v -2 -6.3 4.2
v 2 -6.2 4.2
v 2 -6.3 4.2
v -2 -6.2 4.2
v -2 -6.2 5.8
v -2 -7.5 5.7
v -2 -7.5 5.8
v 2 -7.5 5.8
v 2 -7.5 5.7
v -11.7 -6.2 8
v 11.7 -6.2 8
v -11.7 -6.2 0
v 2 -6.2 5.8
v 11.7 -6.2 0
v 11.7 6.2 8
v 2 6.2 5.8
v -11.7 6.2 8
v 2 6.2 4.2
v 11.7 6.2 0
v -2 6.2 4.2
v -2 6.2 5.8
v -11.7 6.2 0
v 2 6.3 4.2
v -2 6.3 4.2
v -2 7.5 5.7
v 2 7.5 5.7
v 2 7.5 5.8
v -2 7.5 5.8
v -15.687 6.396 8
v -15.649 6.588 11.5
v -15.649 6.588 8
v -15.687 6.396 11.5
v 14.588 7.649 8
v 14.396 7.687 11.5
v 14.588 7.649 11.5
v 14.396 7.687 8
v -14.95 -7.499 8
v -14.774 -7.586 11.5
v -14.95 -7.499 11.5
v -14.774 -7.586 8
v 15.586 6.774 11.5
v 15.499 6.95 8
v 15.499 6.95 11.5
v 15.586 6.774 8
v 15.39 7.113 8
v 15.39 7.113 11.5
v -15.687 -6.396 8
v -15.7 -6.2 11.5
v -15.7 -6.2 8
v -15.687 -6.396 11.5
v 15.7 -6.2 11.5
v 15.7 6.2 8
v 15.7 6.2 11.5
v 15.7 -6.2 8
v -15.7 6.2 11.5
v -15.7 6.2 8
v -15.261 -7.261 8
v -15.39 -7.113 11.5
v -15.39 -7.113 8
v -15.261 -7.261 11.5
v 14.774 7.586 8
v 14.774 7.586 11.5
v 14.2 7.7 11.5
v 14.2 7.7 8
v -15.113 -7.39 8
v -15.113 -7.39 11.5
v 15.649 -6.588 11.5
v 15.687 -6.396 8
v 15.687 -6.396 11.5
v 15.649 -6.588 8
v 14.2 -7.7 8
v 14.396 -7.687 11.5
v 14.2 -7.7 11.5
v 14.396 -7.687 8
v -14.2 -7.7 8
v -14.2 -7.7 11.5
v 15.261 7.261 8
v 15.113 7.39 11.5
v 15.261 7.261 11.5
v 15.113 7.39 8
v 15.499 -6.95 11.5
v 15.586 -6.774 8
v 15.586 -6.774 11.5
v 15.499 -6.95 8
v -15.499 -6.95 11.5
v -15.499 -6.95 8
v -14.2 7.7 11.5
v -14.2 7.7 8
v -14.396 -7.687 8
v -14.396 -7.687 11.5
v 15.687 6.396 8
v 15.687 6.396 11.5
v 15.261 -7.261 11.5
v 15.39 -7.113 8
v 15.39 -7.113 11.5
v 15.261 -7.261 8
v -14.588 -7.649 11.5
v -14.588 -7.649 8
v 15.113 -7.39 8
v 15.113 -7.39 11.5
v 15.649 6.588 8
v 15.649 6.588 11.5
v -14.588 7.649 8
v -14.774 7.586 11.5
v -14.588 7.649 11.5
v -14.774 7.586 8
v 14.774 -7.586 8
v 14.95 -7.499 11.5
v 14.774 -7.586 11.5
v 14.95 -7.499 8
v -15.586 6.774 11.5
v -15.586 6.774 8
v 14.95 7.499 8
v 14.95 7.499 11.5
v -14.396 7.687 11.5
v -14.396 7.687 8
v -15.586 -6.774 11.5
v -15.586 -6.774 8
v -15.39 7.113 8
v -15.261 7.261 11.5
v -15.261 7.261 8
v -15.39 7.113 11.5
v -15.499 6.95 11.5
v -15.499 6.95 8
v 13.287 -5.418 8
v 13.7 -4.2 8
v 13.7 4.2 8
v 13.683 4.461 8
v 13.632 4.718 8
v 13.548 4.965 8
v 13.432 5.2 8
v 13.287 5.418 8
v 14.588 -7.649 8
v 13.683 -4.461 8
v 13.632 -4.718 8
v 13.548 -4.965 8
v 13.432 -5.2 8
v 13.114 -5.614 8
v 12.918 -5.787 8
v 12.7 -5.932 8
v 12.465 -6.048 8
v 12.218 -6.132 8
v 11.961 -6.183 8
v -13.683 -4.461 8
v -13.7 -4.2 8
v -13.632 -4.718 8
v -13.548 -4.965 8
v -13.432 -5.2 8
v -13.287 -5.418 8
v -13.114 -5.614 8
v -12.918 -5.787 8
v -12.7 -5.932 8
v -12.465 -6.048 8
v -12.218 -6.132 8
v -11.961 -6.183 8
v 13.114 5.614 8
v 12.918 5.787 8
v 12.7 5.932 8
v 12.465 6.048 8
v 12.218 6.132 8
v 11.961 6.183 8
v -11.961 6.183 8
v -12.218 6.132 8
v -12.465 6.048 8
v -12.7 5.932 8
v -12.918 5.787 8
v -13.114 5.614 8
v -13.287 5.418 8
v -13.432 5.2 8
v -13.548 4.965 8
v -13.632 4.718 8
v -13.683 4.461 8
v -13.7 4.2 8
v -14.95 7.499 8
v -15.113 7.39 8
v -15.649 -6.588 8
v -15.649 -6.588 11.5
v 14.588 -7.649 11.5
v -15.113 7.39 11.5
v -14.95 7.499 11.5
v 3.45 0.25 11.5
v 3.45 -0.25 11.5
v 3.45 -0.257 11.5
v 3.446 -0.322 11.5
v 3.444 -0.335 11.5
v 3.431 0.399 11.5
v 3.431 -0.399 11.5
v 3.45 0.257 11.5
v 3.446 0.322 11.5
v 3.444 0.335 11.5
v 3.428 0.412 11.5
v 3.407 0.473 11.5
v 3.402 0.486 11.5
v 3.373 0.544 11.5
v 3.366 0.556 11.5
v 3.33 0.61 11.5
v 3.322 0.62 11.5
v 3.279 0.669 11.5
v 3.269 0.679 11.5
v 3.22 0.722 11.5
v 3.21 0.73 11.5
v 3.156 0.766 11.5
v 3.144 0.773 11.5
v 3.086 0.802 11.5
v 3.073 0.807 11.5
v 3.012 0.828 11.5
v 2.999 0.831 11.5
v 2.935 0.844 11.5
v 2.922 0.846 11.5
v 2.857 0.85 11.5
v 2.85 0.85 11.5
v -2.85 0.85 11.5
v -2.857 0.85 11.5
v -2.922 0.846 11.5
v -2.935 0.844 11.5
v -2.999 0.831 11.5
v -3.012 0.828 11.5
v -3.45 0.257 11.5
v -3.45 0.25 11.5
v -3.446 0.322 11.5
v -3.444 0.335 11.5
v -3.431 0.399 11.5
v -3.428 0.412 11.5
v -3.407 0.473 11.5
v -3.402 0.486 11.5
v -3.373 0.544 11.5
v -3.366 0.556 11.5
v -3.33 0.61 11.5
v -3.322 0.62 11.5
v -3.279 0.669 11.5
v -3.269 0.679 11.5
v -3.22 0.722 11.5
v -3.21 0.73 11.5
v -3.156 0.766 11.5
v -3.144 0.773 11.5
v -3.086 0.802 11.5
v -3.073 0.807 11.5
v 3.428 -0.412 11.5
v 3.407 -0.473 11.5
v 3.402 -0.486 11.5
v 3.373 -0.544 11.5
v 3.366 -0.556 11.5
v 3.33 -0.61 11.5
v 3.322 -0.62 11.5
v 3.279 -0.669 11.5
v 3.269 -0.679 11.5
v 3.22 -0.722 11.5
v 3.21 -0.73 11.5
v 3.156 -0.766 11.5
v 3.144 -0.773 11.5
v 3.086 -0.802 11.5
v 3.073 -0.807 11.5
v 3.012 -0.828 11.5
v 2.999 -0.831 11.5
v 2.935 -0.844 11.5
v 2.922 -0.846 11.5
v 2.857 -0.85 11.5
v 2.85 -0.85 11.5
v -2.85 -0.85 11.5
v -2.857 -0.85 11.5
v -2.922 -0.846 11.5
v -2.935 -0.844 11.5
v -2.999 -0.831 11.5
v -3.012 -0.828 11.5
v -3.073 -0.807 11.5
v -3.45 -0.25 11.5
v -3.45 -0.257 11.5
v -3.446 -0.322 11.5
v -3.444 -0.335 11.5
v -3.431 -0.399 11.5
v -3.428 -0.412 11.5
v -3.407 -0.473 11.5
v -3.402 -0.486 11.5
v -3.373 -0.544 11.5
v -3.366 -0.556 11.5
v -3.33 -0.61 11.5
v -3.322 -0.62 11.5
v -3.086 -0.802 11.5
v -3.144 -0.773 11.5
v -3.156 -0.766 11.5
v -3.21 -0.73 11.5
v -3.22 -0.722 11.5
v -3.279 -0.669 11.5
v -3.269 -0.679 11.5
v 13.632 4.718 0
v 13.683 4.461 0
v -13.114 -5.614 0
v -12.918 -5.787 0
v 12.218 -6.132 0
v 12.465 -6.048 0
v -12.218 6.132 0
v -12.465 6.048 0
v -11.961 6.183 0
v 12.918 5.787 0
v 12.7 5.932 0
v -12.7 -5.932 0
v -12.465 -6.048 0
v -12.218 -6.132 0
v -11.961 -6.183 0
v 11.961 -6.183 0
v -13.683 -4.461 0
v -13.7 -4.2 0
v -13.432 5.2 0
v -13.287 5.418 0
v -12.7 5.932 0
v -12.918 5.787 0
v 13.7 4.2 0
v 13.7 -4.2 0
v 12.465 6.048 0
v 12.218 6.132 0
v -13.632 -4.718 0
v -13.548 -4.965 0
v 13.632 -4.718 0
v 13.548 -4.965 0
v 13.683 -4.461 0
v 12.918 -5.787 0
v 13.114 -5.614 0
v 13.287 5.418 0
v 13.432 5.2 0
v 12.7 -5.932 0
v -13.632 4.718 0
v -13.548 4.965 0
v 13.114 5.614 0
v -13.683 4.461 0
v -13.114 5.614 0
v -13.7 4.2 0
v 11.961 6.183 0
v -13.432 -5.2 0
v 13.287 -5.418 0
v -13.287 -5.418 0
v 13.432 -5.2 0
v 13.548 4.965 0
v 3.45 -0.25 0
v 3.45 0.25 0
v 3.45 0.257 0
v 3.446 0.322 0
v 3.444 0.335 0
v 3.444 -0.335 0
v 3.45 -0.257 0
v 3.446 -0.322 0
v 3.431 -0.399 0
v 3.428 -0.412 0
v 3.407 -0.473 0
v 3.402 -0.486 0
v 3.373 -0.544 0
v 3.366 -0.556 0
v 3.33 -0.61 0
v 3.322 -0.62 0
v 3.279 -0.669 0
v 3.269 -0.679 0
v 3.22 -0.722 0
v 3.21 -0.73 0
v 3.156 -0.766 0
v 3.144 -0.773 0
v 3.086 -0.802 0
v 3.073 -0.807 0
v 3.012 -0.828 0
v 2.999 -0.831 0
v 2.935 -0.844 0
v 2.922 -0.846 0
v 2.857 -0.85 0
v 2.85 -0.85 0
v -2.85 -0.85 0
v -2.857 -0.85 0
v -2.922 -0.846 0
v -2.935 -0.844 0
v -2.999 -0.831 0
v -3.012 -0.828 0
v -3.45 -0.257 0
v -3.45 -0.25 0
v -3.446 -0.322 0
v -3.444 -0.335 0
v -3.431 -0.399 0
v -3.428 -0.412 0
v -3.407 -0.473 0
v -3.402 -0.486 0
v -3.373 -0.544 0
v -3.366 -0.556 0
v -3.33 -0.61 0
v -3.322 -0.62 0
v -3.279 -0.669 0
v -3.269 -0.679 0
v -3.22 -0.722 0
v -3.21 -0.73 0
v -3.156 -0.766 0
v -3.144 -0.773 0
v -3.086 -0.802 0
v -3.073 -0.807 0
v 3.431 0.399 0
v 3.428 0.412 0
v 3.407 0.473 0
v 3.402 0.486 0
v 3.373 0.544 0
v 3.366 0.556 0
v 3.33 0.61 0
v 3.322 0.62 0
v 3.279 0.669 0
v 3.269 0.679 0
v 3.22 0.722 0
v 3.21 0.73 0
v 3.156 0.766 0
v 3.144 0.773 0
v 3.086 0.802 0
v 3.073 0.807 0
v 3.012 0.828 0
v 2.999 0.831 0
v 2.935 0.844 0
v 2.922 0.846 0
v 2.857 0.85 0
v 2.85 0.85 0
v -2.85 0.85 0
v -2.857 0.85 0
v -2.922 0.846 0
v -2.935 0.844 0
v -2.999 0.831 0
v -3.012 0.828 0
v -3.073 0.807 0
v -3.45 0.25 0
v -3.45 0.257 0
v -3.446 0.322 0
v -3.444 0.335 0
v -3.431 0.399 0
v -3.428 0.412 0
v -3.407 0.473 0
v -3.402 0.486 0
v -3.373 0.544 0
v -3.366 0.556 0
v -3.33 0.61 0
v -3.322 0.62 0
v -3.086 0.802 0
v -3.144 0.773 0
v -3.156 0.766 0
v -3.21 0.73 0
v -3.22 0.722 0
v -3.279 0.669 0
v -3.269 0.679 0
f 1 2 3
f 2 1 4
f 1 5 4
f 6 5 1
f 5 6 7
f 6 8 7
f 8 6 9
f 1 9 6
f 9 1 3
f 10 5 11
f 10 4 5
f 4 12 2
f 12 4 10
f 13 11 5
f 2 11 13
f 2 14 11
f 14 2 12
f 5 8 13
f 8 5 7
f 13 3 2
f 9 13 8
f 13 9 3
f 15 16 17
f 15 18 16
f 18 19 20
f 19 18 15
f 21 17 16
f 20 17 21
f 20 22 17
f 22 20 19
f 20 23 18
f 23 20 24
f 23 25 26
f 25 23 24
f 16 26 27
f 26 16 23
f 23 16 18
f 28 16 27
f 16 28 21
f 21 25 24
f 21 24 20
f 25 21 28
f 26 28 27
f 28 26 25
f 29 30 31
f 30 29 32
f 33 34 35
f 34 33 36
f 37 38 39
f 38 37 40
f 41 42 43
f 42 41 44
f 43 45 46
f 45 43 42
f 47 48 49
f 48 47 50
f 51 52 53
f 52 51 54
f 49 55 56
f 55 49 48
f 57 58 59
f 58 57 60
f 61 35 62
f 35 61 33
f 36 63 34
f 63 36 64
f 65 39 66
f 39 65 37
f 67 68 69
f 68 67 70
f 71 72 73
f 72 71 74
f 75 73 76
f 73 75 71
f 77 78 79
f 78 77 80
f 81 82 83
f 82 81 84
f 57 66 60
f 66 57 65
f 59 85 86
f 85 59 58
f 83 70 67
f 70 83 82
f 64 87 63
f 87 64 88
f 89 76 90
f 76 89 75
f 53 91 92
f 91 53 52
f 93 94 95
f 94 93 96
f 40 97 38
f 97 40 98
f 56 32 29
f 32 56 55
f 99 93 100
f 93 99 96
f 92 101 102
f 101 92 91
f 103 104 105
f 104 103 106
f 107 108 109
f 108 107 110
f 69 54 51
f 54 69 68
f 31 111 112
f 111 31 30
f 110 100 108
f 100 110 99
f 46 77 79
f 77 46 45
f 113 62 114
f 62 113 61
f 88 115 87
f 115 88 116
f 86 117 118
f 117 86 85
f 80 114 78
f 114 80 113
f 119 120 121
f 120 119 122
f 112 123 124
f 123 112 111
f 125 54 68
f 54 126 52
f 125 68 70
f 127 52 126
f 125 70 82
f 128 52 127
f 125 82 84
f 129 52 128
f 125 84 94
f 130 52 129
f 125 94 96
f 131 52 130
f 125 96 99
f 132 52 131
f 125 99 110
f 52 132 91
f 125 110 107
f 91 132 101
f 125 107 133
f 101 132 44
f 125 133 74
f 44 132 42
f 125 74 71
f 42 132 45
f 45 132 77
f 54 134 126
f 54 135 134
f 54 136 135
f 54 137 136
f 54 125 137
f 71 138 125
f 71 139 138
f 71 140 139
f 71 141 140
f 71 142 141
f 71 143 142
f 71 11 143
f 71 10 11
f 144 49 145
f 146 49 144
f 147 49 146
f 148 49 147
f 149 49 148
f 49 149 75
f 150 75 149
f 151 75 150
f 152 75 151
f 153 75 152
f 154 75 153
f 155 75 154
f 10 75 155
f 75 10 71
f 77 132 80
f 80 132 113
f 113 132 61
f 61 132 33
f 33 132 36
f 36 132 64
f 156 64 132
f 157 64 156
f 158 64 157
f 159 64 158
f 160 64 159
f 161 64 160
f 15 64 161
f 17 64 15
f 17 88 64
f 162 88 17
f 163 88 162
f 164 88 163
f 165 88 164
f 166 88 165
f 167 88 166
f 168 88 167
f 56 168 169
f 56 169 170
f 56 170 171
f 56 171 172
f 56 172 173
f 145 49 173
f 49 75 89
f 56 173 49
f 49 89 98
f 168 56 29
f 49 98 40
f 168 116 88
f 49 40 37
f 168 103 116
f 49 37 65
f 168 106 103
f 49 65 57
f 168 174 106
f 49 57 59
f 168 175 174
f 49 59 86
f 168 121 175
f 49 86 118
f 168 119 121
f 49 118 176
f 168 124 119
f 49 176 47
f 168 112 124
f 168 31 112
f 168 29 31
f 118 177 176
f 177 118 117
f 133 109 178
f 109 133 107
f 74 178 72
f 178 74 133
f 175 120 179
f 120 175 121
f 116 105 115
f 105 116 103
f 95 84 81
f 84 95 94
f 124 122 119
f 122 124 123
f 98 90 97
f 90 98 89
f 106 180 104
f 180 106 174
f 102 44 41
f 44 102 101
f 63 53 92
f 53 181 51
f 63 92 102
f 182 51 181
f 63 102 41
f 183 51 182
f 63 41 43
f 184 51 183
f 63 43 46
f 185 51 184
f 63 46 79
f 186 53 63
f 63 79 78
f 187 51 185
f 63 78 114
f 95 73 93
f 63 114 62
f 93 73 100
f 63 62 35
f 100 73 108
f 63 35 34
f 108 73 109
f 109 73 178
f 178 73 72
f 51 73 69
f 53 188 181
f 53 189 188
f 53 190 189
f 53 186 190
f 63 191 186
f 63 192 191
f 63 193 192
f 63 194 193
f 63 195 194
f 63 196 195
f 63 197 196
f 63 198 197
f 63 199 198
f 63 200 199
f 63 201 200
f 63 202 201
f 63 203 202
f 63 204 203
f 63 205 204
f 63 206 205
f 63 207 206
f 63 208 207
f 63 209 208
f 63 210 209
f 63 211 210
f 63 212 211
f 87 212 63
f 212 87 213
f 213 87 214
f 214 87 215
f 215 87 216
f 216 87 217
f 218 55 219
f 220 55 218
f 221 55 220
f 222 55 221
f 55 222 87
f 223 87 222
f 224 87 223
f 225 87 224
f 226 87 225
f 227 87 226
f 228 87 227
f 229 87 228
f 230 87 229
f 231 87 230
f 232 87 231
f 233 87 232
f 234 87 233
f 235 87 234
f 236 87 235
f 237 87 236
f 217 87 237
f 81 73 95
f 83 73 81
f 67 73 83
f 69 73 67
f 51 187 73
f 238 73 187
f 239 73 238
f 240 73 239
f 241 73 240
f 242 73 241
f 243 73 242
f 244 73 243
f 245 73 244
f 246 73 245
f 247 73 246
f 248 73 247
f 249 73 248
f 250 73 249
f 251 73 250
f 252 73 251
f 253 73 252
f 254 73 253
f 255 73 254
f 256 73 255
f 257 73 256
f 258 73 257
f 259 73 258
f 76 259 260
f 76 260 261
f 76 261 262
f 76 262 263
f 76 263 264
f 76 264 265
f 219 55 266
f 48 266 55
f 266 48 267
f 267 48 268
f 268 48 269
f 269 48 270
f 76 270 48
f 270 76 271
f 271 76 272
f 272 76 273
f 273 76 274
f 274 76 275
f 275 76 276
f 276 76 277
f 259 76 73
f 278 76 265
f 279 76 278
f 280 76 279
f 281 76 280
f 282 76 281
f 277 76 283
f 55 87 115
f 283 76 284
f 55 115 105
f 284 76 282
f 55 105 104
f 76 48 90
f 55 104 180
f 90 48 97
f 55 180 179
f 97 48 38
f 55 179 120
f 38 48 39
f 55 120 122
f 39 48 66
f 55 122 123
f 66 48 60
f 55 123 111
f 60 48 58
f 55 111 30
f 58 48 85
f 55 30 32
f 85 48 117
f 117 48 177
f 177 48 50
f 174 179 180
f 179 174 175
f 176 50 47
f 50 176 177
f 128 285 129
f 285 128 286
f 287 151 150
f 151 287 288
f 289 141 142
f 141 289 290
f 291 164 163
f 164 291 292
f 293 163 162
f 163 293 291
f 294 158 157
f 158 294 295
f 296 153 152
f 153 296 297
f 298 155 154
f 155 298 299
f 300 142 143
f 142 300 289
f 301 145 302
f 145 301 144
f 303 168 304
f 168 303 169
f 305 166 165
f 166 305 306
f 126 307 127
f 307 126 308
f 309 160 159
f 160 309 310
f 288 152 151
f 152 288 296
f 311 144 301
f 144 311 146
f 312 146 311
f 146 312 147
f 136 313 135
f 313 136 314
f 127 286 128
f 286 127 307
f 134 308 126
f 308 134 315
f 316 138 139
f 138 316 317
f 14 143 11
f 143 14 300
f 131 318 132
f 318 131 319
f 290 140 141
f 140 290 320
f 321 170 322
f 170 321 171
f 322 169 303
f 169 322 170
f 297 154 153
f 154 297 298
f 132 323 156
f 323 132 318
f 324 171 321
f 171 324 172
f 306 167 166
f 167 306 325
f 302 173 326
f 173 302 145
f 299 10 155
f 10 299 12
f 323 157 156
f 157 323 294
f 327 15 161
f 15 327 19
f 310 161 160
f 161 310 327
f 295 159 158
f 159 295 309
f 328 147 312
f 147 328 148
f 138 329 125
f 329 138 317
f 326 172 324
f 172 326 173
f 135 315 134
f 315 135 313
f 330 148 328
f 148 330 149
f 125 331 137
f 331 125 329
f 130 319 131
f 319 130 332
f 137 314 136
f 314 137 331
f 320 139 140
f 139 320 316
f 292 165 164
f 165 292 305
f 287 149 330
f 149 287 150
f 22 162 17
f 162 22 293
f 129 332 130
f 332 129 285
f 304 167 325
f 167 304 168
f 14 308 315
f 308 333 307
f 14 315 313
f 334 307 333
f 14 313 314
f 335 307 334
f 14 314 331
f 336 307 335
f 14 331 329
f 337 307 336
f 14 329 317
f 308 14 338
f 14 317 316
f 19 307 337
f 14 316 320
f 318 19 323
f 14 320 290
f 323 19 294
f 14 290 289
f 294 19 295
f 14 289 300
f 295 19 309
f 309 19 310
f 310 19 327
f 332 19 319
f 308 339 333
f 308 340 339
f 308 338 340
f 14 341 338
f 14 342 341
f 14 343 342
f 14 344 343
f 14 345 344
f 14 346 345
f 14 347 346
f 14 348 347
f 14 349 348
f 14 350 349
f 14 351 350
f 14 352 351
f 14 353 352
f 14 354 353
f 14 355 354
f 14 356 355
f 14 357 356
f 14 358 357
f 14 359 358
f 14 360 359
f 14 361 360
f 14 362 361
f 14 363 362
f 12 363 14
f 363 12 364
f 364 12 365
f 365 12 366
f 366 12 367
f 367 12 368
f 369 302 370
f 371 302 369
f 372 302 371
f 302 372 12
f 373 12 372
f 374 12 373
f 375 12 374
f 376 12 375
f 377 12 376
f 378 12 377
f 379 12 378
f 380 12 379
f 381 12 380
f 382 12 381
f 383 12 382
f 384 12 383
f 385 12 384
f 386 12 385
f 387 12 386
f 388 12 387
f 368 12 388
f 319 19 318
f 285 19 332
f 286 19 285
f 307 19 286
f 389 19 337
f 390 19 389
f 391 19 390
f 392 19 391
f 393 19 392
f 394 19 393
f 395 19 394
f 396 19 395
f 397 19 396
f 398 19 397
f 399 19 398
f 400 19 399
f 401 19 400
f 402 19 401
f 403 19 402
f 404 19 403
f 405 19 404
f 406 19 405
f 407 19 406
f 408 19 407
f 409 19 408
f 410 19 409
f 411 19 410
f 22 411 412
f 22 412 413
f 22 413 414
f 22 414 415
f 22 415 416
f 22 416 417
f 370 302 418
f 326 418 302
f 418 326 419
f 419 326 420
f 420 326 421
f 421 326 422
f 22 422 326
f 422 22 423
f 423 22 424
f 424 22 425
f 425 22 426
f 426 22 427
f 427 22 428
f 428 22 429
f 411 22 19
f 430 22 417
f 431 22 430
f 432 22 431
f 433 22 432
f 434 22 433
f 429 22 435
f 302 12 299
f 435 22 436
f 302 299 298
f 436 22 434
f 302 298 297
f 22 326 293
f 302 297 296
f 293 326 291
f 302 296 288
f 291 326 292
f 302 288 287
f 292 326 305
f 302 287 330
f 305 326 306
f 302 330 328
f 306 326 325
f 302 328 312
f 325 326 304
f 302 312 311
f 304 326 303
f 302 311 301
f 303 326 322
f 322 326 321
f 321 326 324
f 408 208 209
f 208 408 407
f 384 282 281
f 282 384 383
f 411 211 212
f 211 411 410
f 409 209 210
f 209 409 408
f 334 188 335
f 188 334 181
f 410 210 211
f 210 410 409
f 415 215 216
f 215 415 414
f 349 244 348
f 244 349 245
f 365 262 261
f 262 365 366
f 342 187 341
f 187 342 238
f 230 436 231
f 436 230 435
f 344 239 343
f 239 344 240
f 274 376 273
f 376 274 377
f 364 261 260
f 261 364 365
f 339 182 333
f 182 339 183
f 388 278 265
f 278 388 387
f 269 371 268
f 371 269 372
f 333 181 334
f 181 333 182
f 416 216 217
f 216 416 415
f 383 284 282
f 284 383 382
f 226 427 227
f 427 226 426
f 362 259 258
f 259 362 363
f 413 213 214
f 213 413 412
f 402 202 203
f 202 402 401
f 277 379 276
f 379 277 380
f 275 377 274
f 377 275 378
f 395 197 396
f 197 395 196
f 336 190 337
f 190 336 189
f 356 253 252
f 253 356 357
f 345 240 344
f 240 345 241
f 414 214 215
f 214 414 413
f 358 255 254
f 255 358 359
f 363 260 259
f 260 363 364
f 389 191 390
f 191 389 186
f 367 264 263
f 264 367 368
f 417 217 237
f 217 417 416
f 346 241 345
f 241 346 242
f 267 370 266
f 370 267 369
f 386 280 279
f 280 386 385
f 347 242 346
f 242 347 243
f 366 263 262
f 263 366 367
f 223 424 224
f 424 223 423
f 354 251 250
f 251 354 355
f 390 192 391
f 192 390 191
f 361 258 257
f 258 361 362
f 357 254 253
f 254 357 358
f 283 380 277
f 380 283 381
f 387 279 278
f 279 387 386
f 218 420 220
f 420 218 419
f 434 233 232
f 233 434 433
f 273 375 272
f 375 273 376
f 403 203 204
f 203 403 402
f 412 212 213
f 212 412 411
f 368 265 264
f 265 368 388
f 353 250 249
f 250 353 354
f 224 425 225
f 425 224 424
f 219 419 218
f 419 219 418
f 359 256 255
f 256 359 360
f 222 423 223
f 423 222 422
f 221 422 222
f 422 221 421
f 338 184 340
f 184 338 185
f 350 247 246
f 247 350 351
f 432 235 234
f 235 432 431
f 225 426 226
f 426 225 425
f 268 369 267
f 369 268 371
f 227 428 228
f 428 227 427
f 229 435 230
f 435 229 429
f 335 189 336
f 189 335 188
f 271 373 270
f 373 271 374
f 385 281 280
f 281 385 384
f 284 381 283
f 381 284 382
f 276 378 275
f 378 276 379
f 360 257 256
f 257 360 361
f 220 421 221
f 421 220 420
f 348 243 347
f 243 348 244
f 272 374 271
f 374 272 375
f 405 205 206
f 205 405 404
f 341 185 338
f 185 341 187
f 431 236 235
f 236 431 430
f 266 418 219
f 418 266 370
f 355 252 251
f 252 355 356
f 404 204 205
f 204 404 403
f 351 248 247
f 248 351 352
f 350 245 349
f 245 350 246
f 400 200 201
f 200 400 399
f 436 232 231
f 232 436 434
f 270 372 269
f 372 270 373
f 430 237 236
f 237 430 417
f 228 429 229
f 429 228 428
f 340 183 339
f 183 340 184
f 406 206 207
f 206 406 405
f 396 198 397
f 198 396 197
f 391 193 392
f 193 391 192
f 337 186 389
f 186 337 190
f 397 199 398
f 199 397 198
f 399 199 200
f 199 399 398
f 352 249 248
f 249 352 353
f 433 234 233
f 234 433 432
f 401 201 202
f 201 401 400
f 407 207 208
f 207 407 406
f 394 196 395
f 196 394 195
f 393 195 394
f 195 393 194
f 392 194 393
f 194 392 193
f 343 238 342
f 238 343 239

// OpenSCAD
// file: insert_base.scad
// ============================================
// MODULAR CABLE ORGANIZER - BASE INSERT MODULE
// ============================================
// This is the parent module for all insert types
// Include this file and call insert_with_port() with a port shape
// ============================================

include <parameters.scad>

// === BASE INSERT WITH CUSTOM BODY DEPTH ===
module insert_blank_custom(body_depth) {
    union() {
        // Base plate (sits in frame slot)
        rounded_box_rect(insert_width, insert_height, insert_base_depth, 1.5);
        
        // Body (protrudes out front) - custom depth
        translate([0, 0, insert_base_depth])
            rounded_box_rect(insert_body_width, insert_body_height, body_depth, 2);
        
        // Snap tabs on all 4 sides
        snap_tabs_all();
    }
}

// === BASE INSERT (default depth - for backwards compatibility) ===
module insert_blank() {
    insert_blank_custom(insert_body_depth);
}

// === INSERT WITH THROUGH-HOLE PORT (custom depth) ===
// Pass body_depth and a 2D shape as children
module insert_with_port_custom(body_depth) {
    total_depth = insert_base_depth + body_depth;
    difference() {
        insert_blank_custom(body_depth);
        
        // Cut port hole ALL THE WAY through (tube shape)
        translate([0, 0, -0.1])
            linear_extrude(total_depth + 0.2)
            offset(r=port_clearance)  // Add clearance to port opening
            children();
    }
}

// === INSERT WITH THROUGH-HOLE PORT (default depth) ===
module insert_with_port() {
    insert_with_port_custom(insert_body_depth) children();
}

// === PRE-MADE INSERT MODULES WITH CORRECT DEPTHS ===
module insert_usbc() {
    insert_with_port_custom(usbc_body_depth) port_usbc();
}

module insert_usba() {
    insert_with_port_custom(usba_body_depth) port_usba();
}

module insert_usb_mini() {
    insert_with_port_custom(usb_mini_body_depth) port_usb_mini();
}

module insert_usb_micro() {
    insert_with_port_custom(usb_micro_body_depth) port_usb_micro();
}

module insert_usb_b() {
    insert_with_port_custom(usb_b_body_depth) port_usb_b();
}

module insert_lightning() {
    insert_with_port_custom(lightning_body_depth) port_lightning();
}

module insert_hdmi() {
    insert_with_port_custom(hdmi_body_depth) port_hdmi();
}

module insert_audio_jack() {
    insert_with_port_custom(audio_jack_body_depth) port_audio_jack();
}

// === SNAP TABS (on neck/body - catch on frame cutouts) ===
// Tabs are on the body, positioned to engage with frame wall cutouts
module snap_tabs_all() {
    // Position tabs up on body (clear of base/frame)
    tab_z = insert_base_depth + snap_tab_offset;
    
    // Tabs on all 4 sides of the body
    for (angle = [0, 90, 180, 270]) {
        rotate([0, 0, angle])
            translate([0, insert_body_height/2, tab_z])
            neck_snap_tab();
    }
}

module neck_snap_tab() {
    // Wedge shape (FLIPPED): 
    // - Peak/taper on BOTTOM - slides past back plate when inserting
    // - Flat on TOP - catches and holds
    hull() {
        // Peak of wedge (protruding, at BOTTOM of tab)
        translate([-snap_tab_width/2, snap_tab_protrude, 0])
            cube([snap_tab_width, 0.1, 0.1]);
        // Flat top (at body surface, TOP of tab)
        translate([-snap_tab_width/2, 0, snap_tab_thick])
            cube([snap_tab_width, 0.1, 0.1]);
        // Base of wedge (at body surface, bottom)
        translate([-snap_tab_width/2, 0, 0])
            cube([snap_tab_width, 0.1, 0.1]);
    }
}

module snap_tab_horizontal() {
    hull() {
        translate([0, -snap_tab_protrude/2, 0])
            cube([snap_tab_width, 0.1, snap_tab_thick], center=true);
        translate([0, snap_tab_protrude/2, snap_tab_thick * 0.2])
            cube([snap_tab_width, 0.1, snap_tab_thick * 0.6], center=true);
    }
}

module snap_tab_vertical() {
    hull() {
        translate([-snap_tab_protrude/2, 0, 0])
            cube([0.1, snap_tab_width, snap_tab_thick], center=true);
        translate([snap_tab_protrude/2, 0, snap_tab_thick * 0.2])
            cube([0.1, snap_tab_width, snap_tab_thick * 0.6], center=true);
    }
}

// === UTILITY MODULES ===
module rounded_box_rect(w, d, h, r) {
    translate([0, 0, h/2])
        hull() {
            for (x = [-1, 1], y = [-1, 1])
                translate([x * (w/2 - r), y * (d/2 - r), 0])
                    cylinder(h=h, r=r, center=true);
        }
}

// === PORT SHAPE MODULES (2D) ===
// These define the cutout shapes for each connector type

module port_rounded_rect(w, h, r) {
    // Standard rounded rectangle
    hull() {
        for (x = [-1, 1], y = [-1, 1])
            translate([x * (w/2 - r), y * (h/2 - r)])
                circle(r=r);
    }
}

module port_usbc() {
    port_rounded_rect(usbc_w, usbc_h, usbc_r);
}

module port_usba() {
    port_rounded_rect(usba_w, usba_h, usba_r);
}

module port_usb_mini() {
    port_rounded_rect(usb_mini_w, usb_mini_h, usb_mini_r);
}

module port_usb_micro() {
    port_rounded_rect(usb_micro_w, usb_micro_h, usb_micro_r);
}

module port_usb_b() {
    // USB-B has beveled top corners
    hull() {
        // Bottom corners (full radius)
        for (x = [-1, 1])
            translate([x * (usb_b_w/2 - usb_b_r), -(usb_b_h/2 - usb_b_r)])
                circle(r=usb_b_r);
        // Top corners (chamfered - moved inward)
        for (x = [-1, 1])
            translate([x * (usb_b_w/2 - usb_b_r - 1), (usb_b_h/2 - usb_b_r)])
                circle(r=usb_b_r);
    }
}

module port_lightning() {
    port_rounded_rect(lightning_w, lightning_h, lightning_r);
}

module port_hdmi() {
    // HDMI is tapered (wider at top)
    hull() {
        // Top (wider)
        for (x = [-1, 1])
            translate([x * (hdmi_w/2 - hdmi_r), (hdmi_h/2 - hdmi_r)])
                circle(r=hdmi_r);
        // Bottom (narrower)
        for (x = [-1, 1])
            translate([x * (hdmi_w/2 - hdmi_r - 1), -(hdmi_h/2 - hdmi_r)])
                circle(r=hdmi_r);
    }
}

module port_audio_jack() {
    circle(d=audio_jack_dia);
}

module port_label_recess() {
    // Shallow rectangular recess for labels
    square([label_w, label_h], center=true);
}

// === RENDER (for testing this file directly) ===
// insert_blank();
// file: parameters.scad
// ============================================
// MODULAR CABLE ORGANIZER - SHARED PARAMETERS
// ============================================
// All dimensions in mm - include this in all files
// ============================================

$fn = 48;

// === TOLERANCES ===
clearance = 0.3;
port_clearance = 0.1;  // Extra clearance for port openings (reduced - 0.2 was too loose for USB-C)
wall = 1.6;

// === SLOT DIMENSIONS (2:1 aspect ratio) - scaled to 2/3 ===
slot_width = 32;  // Reduced by 1mm for more compact insert
slot_height = 16;  // Reduced by 1mm for more compact insert
slot_depth = 4;  // Reduced from 6mm - less frame depth needed

// === FRAME STRUCTURE ===
frame_wall = 0.5;   // Reduced for more compact frame
frame_border = 8;  // Increased by 10mm for mounting holes with countersink
frame_back = 2;     // Slightly thicker for snap catch strength
mount_hole_dia = 3;
countersink_dia = 6;  // Diameter of countersink for screw heads
countersink_depth = 2;  // Depth of countersink

// === GRID ===
grid_cols = 2;
grid_rows = 2;

// === INSERT BASE DIMENSIONS ===
insert_width = slot_width - (2 * clearance);
insert_height = slot_height - (2 * clearance);
insert_base_depth = slot_depth - 0.5;

// === INSERT BODY (protrudes from frame) ===
insert_body_width = insert_width - 4;
insert_body_height = insert_height - 3;
insert_body_depth = 12;  // Deep enough to accommodate male cable connectors
insert_top_thick = 1.5;  // Top platform thickness

// === SNAP TABS (on neck/body - catch on back plate) ===
snap_tab_width = 4;
snap_tab_protrude = 1.2;  // How far tab sticks out from body
snap_tab_thick = 1.5;     // Z thickness of tab
snap_tab_offset = 2.2;      // Distance from base to tab bottom on insert (increased to clear frame)

// === CONNECTOR PORT DIMENSIONS & BODY DEPTHS ===
// Port dimensions from reference blueprints
// Body depths sized to match typical male connector lengths

// USB-C: 8.4 x 2.6mm, male connector ~9mm
usbc_w = 8.4;
usbc_h = 2.6;
usbc_r = 1.0;
usbc_body_depth = 9;

// USB-A: 14.0 x 6.5mm, male connector ~13mm
usba_w = 14.0;
usba_h = 6.5;
usba_r = 0.5;
usba_body_depth = 13;

// USB Mini: 6.9 x 3.0mm, male connector ~9mm
usb_mini_w = 6.9;
usb_mini_h = 3.0;
usb_mini_r = 0.5;
usb_mini_body_depth = 9;

// USB Micro: 6.9 x 1.8mm, male connector ~7mm
usb_micro_w = 6.9;
usb_micro_h = 1.8;
usb_micro_r = 0.3;
usb_micro_body_depth = 7;

// USB-B: 8.0 x 7.5mm, male connector ~14mm
usb_b_w = 8.0;
usb_b_h = 7.5;
usb_b_r = 1.0;
usb_b_body_depth = 14;

// Lightning: 6.7 x 1.5mm, male connector ~8mm
lightning_w = 6.7;
lightning_h = 1.5;
lightning_r = 0.5;
lightning_body_depth = 8;

// HDMI: 14.0 x 4.5mm, male connector ~16mm
hdmi_w = 14.0;
hdmi_h = 4.5;
hdmi_r = 0.5;
hdmi_body_depth = 16;

// 3.5mm Audio Jack: male plug ~14mm
audio_jack_dia = 6.0;
audio_jack_body_depth = 14;

// Blank/Label: recessed area for label
label_w = 30;
label_h = 12;
label_depth = 0.8;

// === CALCULATED VALUES ===
frame_total_depth = frame_back + slot_depth;
grid_width = (grid_cols * slot_width) + ((grid_cols - 1) * frame_wall);
grid_height = (grid_rows * slot_height) + ((grid_rows - 1) * frame_wall);
frame_width = grid_width + (2 * frame_border);
frame_height_total = grid_height + (2 * frame_border);
insert_total_depth = insert_base_depth + insert_body_depth;
// main file
// ============================================
// PRINT FILE: Lightning Insert
// ============================================
// Body depth: 8mm (matches Lightning male connector)
// Print with port side DOWN (flat on bed)
// No supports needed - through-hole design
// ============================================

include <parameters.scad>
include <insert_base.scad>

// Lightning insert - oriented for printing (port side down)
total_depth = insert_base_depth + lightning_body_depth;

rotate([180, 0, 0])
translate([0, 0, -total_depth])
    insert_lightning();
